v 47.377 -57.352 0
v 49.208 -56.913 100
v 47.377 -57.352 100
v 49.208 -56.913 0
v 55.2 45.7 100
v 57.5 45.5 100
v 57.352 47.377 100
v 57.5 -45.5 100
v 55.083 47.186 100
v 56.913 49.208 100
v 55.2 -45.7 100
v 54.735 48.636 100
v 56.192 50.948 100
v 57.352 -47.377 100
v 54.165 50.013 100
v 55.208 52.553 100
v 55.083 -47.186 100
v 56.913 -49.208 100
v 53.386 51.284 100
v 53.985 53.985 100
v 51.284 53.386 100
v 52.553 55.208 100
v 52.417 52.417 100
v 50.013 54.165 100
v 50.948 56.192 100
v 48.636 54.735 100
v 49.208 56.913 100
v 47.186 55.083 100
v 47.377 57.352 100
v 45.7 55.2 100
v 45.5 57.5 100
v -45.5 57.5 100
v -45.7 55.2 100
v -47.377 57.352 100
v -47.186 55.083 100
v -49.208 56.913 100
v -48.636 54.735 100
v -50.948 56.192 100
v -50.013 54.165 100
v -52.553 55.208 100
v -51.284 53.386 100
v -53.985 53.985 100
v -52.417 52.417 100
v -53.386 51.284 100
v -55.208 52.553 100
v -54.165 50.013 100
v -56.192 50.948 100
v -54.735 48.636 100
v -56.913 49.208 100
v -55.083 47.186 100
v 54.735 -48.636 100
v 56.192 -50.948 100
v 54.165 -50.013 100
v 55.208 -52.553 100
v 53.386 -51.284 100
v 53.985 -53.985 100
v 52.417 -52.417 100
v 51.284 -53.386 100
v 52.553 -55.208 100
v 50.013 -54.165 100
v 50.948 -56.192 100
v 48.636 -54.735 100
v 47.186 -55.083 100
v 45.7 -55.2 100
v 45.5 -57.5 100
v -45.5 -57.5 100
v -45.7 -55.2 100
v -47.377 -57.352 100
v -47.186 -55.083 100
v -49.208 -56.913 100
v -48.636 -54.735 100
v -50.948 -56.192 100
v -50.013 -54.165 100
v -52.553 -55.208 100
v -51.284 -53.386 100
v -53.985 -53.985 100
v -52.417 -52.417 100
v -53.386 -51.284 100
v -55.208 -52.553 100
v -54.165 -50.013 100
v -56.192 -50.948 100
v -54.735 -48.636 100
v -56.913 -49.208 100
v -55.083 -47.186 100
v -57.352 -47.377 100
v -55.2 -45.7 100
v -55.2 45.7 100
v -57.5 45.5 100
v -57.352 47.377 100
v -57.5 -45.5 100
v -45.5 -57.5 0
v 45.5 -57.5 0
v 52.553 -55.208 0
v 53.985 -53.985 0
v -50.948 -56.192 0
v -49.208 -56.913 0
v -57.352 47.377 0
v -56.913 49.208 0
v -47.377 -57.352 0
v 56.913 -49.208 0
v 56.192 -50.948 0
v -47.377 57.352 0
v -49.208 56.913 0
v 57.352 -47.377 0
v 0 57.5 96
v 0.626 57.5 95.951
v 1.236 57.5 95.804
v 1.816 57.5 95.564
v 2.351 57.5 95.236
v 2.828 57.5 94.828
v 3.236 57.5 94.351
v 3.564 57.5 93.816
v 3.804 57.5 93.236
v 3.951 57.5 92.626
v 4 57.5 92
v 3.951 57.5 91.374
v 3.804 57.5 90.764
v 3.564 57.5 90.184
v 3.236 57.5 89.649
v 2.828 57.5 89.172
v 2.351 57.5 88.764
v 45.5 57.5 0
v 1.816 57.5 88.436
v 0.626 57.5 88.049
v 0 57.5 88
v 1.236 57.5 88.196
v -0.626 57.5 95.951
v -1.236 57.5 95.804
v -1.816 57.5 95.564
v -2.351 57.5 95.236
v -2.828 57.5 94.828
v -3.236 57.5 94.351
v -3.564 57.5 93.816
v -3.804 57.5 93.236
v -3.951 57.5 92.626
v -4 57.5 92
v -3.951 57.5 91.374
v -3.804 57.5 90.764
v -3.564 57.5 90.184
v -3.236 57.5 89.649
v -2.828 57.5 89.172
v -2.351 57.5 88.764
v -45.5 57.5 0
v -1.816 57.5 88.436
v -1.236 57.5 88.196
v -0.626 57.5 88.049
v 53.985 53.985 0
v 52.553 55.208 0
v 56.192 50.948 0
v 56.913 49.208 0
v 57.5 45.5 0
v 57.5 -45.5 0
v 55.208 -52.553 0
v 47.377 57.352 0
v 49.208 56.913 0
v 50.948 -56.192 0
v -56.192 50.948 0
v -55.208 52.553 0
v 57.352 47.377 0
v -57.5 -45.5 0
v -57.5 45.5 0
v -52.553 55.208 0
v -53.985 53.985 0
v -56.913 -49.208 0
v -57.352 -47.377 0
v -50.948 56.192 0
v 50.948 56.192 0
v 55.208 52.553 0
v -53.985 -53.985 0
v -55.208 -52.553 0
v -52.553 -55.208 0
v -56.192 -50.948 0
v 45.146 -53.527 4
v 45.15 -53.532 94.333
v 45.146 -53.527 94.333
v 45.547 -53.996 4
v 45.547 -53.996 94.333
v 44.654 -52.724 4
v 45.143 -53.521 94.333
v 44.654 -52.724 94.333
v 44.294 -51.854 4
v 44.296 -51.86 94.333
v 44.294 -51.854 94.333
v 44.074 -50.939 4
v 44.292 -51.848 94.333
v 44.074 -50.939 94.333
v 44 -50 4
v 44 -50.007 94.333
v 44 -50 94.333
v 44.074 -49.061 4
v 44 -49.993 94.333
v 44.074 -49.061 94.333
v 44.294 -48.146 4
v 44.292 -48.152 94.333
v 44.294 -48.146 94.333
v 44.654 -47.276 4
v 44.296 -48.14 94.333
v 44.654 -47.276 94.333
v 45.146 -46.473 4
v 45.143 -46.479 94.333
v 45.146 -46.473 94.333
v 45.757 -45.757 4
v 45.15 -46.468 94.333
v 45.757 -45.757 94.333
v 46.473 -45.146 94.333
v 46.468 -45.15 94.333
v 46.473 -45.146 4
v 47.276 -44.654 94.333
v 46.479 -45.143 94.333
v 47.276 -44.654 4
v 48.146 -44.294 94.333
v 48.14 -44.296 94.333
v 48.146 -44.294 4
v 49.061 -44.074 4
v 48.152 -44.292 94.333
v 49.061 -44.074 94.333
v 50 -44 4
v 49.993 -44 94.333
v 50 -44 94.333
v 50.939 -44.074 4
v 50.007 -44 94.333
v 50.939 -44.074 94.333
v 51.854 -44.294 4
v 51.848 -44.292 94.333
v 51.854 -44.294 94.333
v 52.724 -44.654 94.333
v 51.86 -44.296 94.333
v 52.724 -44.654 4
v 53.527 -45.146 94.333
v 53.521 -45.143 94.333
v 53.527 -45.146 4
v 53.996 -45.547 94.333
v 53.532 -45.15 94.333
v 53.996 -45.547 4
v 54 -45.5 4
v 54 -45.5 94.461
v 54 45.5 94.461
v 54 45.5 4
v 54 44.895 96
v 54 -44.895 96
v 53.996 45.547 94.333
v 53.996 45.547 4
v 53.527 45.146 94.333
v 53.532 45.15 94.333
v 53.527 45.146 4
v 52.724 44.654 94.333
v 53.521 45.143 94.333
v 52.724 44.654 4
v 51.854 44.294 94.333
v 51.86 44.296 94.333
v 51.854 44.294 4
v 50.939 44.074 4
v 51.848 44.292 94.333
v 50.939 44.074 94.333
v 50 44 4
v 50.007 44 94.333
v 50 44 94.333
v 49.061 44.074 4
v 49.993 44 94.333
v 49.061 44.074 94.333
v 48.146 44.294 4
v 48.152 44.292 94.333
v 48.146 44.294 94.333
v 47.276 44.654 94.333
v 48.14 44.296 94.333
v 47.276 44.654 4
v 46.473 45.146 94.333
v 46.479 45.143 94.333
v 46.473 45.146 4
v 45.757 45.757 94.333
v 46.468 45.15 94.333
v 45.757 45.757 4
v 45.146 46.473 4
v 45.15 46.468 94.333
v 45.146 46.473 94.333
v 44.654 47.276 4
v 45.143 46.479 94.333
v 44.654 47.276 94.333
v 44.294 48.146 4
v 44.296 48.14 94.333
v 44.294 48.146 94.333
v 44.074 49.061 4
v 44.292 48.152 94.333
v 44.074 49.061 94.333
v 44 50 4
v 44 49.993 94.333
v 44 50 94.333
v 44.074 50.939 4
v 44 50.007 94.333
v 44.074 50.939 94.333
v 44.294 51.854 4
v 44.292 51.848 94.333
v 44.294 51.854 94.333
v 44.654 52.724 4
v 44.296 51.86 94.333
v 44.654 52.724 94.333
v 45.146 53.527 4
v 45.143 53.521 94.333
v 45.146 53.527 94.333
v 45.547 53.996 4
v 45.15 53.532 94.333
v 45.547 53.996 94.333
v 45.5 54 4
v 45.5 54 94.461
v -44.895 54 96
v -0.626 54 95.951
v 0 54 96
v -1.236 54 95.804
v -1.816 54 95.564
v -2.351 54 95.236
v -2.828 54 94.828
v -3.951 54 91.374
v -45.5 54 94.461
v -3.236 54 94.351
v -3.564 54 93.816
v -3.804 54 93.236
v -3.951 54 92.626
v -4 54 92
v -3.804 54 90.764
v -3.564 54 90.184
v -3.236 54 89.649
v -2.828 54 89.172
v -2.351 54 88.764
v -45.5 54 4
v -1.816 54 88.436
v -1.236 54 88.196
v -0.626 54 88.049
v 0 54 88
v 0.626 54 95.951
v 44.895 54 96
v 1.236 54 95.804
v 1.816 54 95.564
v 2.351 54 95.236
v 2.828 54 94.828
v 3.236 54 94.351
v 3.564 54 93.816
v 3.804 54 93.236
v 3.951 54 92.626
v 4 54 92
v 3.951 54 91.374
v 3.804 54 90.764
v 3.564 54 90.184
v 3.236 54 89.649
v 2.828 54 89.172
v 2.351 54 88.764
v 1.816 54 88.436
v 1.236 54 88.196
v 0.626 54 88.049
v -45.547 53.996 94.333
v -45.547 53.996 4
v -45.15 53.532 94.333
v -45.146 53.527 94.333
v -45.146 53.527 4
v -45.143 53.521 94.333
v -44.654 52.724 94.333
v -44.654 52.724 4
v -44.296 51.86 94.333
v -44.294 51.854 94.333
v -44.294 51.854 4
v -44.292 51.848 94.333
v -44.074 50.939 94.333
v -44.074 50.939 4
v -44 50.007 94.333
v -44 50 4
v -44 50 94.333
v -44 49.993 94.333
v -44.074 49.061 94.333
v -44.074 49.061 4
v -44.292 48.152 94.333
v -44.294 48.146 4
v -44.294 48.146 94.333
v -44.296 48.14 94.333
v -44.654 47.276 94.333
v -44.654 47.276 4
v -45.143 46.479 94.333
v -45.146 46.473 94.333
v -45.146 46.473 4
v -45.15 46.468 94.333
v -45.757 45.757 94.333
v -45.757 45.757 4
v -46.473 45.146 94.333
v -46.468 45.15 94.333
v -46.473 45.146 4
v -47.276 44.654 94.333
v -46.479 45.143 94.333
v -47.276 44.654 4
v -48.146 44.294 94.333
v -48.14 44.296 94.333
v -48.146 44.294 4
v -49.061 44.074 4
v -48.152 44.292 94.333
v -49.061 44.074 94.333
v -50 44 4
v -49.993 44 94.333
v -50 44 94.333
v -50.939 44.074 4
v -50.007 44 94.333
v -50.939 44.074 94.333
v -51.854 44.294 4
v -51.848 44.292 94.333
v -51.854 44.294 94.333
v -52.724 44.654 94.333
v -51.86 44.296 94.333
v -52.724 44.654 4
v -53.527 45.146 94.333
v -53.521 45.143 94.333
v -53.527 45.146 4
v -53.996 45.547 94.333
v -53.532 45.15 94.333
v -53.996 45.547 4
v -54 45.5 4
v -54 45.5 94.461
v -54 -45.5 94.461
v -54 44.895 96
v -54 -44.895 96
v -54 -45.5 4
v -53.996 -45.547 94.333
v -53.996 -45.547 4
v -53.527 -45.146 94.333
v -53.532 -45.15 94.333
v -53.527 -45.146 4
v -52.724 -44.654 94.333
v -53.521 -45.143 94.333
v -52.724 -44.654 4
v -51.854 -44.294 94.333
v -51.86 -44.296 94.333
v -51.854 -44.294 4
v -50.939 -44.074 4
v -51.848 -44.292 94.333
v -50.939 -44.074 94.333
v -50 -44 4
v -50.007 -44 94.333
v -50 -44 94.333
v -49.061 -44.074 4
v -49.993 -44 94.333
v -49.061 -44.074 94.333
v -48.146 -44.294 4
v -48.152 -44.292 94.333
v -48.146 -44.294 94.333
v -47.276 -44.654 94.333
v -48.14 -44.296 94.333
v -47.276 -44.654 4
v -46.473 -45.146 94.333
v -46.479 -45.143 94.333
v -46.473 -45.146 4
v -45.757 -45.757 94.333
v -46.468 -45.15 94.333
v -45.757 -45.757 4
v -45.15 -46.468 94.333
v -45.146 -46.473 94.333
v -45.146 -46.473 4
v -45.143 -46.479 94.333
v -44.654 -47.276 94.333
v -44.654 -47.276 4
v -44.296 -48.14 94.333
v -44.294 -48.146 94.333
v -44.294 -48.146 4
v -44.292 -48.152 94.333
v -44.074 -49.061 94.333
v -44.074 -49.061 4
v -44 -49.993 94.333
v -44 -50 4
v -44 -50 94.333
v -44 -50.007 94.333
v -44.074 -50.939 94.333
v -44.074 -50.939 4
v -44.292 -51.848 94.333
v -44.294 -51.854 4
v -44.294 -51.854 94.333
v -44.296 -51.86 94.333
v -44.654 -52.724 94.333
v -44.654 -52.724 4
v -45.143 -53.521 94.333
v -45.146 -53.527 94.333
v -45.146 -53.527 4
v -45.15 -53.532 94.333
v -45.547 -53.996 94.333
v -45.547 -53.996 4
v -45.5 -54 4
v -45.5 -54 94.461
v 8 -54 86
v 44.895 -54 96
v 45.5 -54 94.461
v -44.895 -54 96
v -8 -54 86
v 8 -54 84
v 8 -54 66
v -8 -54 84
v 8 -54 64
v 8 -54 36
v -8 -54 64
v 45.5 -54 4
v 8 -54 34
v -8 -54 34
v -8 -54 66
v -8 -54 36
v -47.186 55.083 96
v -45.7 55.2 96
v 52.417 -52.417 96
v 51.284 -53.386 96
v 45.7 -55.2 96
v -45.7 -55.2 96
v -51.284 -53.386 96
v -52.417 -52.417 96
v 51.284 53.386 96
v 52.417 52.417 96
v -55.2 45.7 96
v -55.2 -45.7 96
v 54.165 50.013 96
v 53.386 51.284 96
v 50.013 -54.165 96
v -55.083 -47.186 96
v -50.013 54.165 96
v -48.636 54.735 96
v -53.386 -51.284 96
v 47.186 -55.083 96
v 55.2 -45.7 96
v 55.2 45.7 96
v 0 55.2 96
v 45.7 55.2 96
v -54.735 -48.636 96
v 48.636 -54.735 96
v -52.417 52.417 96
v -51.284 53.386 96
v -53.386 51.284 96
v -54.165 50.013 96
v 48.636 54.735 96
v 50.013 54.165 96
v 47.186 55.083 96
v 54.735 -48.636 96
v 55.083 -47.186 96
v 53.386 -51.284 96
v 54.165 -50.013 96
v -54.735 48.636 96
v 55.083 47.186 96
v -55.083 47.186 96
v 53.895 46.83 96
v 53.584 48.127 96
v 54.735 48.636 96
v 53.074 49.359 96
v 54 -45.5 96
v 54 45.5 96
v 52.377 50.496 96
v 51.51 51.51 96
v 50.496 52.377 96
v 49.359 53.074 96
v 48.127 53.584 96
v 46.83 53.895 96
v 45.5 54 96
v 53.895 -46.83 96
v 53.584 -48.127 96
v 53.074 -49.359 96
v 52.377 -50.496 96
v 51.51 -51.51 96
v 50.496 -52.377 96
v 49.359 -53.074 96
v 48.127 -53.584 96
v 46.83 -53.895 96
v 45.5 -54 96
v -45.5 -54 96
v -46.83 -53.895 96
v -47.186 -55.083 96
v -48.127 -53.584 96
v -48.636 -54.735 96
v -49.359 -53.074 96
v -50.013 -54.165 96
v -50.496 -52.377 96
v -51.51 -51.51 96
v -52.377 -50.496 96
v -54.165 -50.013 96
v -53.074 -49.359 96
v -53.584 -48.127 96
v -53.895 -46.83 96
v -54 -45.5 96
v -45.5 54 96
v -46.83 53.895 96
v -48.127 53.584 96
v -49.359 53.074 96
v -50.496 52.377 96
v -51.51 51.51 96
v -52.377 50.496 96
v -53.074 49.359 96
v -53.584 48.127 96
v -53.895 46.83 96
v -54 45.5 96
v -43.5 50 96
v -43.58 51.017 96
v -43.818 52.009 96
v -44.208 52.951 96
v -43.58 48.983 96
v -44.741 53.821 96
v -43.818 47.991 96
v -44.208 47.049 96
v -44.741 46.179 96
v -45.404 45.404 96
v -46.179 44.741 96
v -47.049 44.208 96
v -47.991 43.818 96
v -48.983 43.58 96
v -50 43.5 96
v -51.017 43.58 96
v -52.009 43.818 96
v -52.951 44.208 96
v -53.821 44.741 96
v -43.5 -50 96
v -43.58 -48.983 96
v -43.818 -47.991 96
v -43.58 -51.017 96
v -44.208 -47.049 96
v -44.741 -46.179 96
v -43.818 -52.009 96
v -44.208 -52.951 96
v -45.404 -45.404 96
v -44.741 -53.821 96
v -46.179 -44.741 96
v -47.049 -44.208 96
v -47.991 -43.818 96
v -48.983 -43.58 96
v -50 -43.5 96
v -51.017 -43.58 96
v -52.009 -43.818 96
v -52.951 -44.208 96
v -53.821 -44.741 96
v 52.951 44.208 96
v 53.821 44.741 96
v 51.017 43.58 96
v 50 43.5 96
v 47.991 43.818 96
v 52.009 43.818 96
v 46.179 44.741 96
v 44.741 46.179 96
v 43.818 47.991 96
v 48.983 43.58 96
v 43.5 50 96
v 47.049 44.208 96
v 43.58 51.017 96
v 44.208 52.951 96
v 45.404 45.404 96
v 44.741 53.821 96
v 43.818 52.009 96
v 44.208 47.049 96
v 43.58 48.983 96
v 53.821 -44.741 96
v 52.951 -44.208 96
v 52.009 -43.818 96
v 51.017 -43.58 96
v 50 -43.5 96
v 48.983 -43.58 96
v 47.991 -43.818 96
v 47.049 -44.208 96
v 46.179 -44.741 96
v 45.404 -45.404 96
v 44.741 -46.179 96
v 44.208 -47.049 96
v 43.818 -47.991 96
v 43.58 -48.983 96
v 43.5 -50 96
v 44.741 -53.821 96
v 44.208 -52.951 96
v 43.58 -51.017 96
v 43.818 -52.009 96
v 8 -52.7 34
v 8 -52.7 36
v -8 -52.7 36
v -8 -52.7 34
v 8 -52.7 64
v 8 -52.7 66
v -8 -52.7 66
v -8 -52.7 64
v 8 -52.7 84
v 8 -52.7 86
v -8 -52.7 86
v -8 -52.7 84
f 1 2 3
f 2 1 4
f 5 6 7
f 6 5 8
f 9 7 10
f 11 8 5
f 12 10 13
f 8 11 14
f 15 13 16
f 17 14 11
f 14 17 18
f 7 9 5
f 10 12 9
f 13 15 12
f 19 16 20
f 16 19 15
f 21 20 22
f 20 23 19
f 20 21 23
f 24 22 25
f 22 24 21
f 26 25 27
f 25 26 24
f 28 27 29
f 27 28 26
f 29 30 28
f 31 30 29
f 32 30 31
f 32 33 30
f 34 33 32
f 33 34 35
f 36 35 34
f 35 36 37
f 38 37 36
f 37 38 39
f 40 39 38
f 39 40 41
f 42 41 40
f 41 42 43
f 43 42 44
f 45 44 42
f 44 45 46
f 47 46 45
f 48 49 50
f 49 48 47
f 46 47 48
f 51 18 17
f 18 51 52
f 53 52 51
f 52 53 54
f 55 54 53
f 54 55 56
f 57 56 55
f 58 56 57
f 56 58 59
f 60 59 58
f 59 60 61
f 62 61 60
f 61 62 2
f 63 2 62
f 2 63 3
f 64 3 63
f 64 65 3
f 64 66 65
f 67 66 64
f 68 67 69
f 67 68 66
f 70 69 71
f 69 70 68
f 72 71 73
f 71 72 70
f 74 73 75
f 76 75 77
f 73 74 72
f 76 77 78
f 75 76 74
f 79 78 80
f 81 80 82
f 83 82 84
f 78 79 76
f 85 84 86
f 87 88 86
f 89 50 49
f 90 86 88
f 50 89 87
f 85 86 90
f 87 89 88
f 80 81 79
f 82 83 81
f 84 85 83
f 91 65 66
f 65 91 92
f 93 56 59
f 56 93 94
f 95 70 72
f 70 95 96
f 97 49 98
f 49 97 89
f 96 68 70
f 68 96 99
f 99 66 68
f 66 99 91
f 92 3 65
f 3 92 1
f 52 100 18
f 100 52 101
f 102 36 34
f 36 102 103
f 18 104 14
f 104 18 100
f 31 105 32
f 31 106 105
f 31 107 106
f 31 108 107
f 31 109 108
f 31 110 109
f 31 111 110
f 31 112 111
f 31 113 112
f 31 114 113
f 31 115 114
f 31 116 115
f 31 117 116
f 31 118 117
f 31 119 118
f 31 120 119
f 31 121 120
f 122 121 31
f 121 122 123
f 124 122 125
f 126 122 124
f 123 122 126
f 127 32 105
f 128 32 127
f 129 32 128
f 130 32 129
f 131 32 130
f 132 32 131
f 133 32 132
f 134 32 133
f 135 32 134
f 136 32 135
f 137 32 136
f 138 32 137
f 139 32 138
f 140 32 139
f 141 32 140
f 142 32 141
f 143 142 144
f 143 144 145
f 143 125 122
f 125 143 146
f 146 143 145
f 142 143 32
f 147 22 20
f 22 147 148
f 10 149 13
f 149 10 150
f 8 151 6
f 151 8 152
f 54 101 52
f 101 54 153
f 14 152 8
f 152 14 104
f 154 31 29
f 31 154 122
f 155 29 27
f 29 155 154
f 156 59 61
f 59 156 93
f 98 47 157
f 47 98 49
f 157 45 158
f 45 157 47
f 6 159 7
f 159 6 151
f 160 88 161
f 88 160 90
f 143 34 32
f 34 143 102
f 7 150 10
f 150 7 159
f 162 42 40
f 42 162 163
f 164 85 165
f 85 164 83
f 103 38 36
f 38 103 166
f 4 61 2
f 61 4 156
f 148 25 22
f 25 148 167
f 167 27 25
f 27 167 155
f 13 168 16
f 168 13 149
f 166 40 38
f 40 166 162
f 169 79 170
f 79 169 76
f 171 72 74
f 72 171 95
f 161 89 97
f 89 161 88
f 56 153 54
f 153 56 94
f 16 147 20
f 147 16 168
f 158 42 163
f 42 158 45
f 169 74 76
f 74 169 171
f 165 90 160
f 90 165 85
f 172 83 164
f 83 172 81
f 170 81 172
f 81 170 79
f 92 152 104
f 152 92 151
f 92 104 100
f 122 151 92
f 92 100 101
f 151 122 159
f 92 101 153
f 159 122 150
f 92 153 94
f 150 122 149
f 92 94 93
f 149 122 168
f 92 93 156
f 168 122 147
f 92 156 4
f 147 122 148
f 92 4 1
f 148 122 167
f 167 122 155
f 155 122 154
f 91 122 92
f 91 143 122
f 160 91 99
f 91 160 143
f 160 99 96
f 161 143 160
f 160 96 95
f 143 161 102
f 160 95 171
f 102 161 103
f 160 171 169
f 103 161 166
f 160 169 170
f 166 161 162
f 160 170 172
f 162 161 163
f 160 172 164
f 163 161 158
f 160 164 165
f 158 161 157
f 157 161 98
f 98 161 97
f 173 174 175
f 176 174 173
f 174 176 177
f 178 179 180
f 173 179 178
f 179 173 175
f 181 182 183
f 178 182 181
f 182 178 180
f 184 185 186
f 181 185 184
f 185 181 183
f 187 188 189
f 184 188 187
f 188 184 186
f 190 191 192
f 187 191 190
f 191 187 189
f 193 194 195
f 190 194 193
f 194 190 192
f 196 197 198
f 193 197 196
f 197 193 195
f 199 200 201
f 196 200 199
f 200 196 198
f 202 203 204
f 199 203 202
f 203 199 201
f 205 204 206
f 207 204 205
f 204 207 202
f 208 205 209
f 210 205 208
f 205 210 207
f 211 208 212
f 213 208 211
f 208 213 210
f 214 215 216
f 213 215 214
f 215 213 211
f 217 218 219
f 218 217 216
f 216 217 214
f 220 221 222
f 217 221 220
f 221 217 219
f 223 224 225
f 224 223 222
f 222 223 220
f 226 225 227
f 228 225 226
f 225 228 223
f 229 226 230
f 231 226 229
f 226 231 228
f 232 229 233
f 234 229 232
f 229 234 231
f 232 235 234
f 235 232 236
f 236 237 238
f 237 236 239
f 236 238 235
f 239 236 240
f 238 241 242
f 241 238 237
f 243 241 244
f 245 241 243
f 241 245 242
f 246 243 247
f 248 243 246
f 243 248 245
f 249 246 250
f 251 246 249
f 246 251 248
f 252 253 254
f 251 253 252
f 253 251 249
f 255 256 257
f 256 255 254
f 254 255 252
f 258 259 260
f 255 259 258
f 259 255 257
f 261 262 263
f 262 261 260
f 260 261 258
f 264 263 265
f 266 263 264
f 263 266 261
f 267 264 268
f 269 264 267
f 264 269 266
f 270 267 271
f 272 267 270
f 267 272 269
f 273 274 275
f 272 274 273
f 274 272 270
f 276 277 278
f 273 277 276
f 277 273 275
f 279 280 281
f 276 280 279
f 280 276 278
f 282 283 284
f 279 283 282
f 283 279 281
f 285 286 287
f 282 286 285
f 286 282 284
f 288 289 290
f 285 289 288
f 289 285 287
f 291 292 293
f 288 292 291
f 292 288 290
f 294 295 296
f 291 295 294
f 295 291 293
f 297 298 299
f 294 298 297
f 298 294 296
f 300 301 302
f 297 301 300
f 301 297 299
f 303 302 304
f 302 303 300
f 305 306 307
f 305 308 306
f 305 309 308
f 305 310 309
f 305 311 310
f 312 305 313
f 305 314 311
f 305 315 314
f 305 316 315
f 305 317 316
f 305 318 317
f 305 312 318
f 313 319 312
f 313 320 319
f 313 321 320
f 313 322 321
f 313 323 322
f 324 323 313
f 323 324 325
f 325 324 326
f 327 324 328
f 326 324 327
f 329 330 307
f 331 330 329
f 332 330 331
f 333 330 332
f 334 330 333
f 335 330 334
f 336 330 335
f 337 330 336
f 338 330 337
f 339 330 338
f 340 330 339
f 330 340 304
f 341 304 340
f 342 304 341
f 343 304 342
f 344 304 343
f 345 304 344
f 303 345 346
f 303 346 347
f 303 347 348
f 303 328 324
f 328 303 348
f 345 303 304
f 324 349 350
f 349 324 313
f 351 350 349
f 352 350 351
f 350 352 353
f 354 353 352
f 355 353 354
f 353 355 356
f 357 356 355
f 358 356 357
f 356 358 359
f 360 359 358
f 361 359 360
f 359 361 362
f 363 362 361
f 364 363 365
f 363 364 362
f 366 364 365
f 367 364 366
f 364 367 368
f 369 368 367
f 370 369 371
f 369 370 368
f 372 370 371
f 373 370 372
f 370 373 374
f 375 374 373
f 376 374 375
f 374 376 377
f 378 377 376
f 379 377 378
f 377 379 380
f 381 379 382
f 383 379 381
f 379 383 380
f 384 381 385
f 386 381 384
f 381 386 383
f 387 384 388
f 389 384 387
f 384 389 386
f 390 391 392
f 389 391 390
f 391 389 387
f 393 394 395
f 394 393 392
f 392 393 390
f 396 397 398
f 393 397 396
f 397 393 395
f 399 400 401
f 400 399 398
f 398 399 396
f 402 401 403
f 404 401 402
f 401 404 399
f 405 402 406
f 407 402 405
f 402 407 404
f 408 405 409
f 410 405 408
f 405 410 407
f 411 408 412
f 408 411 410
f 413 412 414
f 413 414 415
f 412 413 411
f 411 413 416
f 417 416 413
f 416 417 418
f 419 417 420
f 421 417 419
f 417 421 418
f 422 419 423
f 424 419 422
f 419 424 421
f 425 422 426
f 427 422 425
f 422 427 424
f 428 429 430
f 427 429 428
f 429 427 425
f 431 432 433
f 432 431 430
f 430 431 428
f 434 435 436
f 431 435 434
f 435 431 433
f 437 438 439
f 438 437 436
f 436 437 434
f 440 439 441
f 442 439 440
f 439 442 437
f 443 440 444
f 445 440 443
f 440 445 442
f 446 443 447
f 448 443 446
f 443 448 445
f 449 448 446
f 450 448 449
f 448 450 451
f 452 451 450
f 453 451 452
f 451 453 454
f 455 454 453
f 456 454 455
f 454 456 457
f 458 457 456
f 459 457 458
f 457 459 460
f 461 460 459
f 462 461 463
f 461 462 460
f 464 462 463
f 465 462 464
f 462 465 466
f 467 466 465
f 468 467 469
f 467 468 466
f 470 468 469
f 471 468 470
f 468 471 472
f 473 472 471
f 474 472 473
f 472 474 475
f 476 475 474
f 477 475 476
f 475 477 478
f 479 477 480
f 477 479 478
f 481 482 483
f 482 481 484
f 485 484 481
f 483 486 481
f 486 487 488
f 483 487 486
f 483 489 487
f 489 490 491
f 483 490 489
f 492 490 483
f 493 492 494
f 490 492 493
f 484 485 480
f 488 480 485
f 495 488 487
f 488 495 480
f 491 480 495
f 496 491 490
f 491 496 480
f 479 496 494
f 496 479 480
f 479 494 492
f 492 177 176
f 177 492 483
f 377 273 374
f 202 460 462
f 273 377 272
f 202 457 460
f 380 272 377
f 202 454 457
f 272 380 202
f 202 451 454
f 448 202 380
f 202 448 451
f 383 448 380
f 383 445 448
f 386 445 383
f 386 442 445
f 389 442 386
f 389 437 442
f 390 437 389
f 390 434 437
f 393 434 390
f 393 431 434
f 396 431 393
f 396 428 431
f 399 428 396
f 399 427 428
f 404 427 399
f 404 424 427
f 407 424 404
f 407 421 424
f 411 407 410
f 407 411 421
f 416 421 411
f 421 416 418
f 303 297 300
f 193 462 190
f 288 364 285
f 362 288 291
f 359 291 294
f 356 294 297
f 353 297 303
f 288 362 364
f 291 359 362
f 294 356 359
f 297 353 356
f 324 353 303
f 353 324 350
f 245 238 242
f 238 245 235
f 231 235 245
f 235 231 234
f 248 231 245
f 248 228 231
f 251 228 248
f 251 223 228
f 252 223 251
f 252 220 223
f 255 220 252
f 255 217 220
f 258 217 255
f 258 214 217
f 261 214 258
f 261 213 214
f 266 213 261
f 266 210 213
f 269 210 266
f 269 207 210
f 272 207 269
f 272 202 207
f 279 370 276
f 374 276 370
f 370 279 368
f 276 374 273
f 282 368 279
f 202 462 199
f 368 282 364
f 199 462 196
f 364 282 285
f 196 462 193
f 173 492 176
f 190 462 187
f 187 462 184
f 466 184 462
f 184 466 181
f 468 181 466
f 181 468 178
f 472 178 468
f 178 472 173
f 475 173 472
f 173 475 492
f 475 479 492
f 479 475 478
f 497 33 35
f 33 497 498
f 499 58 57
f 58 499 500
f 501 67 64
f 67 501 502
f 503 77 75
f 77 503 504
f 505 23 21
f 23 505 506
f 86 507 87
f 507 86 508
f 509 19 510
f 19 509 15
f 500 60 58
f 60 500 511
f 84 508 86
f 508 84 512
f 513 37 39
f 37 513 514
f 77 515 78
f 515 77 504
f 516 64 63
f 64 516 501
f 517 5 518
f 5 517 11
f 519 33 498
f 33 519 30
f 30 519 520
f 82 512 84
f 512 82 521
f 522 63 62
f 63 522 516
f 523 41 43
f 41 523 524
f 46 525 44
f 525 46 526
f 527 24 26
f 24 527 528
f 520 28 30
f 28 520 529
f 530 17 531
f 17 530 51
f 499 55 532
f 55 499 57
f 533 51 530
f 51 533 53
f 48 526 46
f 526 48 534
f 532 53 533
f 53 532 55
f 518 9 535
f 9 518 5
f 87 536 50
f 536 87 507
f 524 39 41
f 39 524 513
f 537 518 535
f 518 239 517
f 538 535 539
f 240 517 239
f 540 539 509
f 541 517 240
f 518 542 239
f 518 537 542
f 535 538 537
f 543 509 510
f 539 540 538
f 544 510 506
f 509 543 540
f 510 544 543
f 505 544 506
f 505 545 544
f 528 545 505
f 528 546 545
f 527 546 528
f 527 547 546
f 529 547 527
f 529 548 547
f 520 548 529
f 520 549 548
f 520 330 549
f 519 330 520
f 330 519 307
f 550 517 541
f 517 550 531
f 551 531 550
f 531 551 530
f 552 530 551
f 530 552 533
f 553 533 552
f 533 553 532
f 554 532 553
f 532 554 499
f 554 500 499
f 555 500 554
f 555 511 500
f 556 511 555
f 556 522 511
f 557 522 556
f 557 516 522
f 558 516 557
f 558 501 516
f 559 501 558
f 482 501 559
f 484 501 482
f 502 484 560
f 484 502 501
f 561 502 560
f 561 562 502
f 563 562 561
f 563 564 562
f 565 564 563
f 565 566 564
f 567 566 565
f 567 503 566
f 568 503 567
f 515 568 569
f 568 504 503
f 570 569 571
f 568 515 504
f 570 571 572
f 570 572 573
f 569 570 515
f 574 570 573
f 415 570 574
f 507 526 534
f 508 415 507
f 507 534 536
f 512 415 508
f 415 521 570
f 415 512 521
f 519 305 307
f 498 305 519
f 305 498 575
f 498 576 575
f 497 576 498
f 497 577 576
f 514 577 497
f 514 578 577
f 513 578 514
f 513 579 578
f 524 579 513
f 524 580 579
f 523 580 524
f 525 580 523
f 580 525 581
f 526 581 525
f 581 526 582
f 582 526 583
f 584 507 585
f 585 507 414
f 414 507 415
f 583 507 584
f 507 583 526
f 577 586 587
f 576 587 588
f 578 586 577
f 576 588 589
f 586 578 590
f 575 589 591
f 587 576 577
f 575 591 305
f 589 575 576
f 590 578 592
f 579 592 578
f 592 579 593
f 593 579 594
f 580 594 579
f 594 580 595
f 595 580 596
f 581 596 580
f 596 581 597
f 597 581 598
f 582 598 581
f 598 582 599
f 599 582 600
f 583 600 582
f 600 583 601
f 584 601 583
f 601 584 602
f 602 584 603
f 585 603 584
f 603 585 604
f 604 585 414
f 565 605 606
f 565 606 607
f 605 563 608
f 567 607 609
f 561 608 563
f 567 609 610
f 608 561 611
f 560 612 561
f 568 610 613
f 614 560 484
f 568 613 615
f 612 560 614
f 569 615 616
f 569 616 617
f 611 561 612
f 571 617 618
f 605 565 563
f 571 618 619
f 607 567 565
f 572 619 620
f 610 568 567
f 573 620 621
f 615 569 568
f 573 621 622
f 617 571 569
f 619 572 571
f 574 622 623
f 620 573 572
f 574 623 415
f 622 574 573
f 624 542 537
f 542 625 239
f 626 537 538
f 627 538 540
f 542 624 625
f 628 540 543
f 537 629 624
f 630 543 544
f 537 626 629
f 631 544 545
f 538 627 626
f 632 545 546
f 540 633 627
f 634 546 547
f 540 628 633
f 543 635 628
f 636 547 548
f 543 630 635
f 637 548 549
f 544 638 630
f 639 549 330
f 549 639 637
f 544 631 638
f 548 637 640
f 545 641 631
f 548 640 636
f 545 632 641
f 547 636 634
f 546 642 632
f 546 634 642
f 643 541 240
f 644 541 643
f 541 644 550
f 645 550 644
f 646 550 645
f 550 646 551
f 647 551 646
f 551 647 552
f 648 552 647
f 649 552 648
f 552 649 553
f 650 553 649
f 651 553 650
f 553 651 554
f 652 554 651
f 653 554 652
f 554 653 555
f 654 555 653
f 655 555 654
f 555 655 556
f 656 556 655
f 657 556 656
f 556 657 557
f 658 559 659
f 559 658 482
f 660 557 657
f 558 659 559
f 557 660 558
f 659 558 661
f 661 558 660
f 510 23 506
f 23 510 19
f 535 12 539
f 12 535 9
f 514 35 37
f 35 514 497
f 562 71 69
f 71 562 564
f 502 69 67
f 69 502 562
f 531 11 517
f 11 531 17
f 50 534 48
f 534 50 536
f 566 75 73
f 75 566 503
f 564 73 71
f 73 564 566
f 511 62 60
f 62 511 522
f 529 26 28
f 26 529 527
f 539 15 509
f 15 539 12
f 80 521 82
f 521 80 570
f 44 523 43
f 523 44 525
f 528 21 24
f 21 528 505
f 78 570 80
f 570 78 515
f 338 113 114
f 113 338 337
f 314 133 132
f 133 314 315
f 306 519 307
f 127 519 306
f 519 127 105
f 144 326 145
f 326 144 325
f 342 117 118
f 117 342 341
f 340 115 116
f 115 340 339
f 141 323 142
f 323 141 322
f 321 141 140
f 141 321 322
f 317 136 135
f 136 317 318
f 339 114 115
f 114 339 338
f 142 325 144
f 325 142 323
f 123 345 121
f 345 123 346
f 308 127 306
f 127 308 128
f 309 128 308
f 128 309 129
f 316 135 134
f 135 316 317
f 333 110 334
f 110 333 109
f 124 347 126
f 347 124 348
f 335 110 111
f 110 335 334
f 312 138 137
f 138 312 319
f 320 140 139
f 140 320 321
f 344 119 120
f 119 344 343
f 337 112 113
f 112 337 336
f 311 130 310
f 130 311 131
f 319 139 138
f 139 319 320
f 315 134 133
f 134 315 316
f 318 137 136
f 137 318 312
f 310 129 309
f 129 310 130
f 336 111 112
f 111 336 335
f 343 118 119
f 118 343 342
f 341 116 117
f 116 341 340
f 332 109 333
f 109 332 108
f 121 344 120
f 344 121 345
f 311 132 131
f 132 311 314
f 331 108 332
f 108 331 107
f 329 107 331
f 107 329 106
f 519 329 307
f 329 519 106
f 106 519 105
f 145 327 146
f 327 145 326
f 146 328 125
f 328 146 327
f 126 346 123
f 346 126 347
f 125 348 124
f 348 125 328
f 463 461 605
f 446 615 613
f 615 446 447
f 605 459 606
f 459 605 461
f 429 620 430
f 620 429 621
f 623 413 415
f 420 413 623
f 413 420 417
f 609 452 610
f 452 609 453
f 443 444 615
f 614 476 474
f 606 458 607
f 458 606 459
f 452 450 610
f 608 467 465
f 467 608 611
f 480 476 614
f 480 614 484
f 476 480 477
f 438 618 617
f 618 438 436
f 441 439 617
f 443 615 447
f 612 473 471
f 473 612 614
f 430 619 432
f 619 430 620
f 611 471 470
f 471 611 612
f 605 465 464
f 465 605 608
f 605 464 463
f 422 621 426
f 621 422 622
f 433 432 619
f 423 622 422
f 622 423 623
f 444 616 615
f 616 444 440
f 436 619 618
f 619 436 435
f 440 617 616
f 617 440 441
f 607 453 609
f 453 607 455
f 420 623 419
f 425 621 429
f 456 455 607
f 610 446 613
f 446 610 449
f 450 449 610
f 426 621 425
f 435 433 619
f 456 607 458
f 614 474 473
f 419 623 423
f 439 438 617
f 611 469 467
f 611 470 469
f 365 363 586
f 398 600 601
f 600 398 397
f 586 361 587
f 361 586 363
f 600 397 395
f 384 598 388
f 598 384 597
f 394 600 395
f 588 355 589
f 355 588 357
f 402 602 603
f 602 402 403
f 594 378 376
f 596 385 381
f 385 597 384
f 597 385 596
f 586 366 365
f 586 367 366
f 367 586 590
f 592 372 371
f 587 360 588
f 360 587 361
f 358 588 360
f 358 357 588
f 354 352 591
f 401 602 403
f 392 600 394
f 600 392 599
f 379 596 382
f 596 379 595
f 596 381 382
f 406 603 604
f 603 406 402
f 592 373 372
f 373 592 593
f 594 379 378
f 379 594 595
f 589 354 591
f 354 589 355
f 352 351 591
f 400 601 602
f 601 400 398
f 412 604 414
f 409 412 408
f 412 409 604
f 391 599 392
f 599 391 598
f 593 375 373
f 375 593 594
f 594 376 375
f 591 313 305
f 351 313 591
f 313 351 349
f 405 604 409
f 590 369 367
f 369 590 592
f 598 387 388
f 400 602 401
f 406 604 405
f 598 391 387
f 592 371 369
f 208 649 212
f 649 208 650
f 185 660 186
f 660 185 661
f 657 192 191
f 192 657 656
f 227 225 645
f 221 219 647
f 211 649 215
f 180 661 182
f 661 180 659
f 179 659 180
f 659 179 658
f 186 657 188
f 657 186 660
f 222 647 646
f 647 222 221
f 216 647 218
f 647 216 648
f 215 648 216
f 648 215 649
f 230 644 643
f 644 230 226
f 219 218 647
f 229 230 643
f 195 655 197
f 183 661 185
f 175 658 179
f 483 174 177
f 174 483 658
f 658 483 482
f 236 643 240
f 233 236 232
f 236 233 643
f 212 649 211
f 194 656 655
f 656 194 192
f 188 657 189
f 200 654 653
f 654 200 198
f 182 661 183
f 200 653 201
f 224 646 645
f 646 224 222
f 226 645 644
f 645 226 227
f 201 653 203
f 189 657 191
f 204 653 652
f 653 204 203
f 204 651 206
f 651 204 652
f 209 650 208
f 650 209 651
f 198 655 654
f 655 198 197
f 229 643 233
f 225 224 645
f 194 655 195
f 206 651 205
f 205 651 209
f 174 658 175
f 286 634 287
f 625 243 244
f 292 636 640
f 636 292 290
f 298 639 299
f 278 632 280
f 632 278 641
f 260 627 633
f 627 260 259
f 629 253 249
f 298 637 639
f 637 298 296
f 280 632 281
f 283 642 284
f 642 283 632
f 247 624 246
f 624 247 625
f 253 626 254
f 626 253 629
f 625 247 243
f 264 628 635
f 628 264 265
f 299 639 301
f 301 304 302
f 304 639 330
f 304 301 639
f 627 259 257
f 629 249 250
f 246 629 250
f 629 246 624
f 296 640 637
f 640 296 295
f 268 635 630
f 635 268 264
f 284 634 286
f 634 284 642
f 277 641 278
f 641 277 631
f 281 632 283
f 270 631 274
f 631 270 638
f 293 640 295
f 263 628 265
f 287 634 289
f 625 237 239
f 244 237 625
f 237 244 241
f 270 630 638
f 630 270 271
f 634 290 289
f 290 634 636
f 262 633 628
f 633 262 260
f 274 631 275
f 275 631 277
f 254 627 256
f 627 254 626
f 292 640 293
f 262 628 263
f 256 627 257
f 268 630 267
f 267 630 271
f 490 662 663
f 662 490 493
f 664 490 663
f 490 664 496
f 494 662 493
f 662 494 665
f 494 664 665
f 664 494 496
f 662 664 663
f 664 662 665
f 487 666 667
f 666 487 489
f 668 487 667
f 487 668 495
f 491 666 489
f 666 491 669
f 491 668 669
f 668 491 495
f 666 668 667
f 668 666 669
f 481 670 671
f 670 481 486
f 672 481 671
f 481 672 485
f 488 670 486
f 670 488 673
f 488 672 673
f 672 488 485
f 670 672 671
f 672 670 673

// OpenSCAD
// PRT-01: Water Reservoir Base (1.4L)
// Parametric OpenSCAD Script

$fn = 40;

// Top-level parameters
width = 115;
depth = 115;
height = 100;
wall_thickness = 3.5;
floor_thickness = 4.0;
corner_radius = 12;
m3_hole_d = 3.4;
tolerance = 0.2;

module rounded_rect_2d(w, d, r) {
    offset(r = r)
        square([w - 2*r, d - 2*r], center = true);
}

module part_reservoir_tank(
    w = width,
    d = depth,
    h = height,
    wall_t = wall_thickness,
    floor_t = floor_thickness,
    r_ext = corner_radius,
    m3_d = m3_hole_d,
    tol = tolerance
) {
    r_int = max(2.0, r_ext - wall_t);
    inner_w = w - 2 * wall_t;
    inner_d = d - 2 * wall_t;
    
    // Corner mounting boss positions
    boss_offset_x = w/2 - r_ext/2 - 2.5;
    boss_offset_y = d/2 - r_ext/2 - 2.5;

    difference() {
        union() {
            // Main outer shell
            linear_extrude(height = h)
                rounded_rect_2d(w, d, r_ext);
        }
        
        // Main interior cavity
        translate([0, 0, floor_t])
            linear_extrude(height = h)
                difference() {
                    rounded_rect_2d(inner_w, inner_d, r_int);
                    
                    // Internal corner bosses at top for M3 mounting
                    for (dx = [-1, 1], dy = [-1, 1]) {
                        translate([dx * (inner_w/2 - 4), dy * (inner_d/2 - 4)])
                            circle(r = 6);
                    }
                }
                
        // Step/lip at top rim for mating upper pot assembly (with tolerance)
        translate([0, 0, h - 4])
            linear_extrude(height = 5)
                rounded_rect_2d(inner_w + 2*tol + 2.0, inner_d + 2*tol + 2.0, r_int + 1.0);

        // Top M3 mounting holes in the corner bosses
        for (dx = [-1, 1], dy = [-1, 1]) {
            translate([dx * (inner_w/2 - 4), dy * (inner_d/2 - 4), h - 18])
                cylinder(d = m3_d, h = 20);
        }
        
        // Side tubing/cable pass-through notch near the top rim
        translate([0, d/2, h - 8])
            rotate([90, 0, 0])
                cylinder(d = 8, h = wall_t * 4, center = true);
    }
    
    // Add sloped support under the corner bosses so they print without supports
    intersection() {
        linear_extrude(height = h - 4)
            rounded_rect_2d(inner_w, inner_d, r_int);
            
        union() {
            for (dx = [-1, 1], dy = [-1, 1]) {
                translate([dx * (inner_w/2 - 4), dy * (inner_d/2 - 4), h - 24])
                    cylinder(r1 = 0.5, r2 = 6.5, h = 20);
            }
        }
    }
    
    // Internal water-level sight markers (1.0L and 1.4L max fill indicators)
    for (z_mark = [35, 65, 85]) {
        translate([0, -inner_d/2 + 0.5, z_mark])
            cube([16, 1.6, 2.0], center = true);
    }
}

part_reservoir_tank();
